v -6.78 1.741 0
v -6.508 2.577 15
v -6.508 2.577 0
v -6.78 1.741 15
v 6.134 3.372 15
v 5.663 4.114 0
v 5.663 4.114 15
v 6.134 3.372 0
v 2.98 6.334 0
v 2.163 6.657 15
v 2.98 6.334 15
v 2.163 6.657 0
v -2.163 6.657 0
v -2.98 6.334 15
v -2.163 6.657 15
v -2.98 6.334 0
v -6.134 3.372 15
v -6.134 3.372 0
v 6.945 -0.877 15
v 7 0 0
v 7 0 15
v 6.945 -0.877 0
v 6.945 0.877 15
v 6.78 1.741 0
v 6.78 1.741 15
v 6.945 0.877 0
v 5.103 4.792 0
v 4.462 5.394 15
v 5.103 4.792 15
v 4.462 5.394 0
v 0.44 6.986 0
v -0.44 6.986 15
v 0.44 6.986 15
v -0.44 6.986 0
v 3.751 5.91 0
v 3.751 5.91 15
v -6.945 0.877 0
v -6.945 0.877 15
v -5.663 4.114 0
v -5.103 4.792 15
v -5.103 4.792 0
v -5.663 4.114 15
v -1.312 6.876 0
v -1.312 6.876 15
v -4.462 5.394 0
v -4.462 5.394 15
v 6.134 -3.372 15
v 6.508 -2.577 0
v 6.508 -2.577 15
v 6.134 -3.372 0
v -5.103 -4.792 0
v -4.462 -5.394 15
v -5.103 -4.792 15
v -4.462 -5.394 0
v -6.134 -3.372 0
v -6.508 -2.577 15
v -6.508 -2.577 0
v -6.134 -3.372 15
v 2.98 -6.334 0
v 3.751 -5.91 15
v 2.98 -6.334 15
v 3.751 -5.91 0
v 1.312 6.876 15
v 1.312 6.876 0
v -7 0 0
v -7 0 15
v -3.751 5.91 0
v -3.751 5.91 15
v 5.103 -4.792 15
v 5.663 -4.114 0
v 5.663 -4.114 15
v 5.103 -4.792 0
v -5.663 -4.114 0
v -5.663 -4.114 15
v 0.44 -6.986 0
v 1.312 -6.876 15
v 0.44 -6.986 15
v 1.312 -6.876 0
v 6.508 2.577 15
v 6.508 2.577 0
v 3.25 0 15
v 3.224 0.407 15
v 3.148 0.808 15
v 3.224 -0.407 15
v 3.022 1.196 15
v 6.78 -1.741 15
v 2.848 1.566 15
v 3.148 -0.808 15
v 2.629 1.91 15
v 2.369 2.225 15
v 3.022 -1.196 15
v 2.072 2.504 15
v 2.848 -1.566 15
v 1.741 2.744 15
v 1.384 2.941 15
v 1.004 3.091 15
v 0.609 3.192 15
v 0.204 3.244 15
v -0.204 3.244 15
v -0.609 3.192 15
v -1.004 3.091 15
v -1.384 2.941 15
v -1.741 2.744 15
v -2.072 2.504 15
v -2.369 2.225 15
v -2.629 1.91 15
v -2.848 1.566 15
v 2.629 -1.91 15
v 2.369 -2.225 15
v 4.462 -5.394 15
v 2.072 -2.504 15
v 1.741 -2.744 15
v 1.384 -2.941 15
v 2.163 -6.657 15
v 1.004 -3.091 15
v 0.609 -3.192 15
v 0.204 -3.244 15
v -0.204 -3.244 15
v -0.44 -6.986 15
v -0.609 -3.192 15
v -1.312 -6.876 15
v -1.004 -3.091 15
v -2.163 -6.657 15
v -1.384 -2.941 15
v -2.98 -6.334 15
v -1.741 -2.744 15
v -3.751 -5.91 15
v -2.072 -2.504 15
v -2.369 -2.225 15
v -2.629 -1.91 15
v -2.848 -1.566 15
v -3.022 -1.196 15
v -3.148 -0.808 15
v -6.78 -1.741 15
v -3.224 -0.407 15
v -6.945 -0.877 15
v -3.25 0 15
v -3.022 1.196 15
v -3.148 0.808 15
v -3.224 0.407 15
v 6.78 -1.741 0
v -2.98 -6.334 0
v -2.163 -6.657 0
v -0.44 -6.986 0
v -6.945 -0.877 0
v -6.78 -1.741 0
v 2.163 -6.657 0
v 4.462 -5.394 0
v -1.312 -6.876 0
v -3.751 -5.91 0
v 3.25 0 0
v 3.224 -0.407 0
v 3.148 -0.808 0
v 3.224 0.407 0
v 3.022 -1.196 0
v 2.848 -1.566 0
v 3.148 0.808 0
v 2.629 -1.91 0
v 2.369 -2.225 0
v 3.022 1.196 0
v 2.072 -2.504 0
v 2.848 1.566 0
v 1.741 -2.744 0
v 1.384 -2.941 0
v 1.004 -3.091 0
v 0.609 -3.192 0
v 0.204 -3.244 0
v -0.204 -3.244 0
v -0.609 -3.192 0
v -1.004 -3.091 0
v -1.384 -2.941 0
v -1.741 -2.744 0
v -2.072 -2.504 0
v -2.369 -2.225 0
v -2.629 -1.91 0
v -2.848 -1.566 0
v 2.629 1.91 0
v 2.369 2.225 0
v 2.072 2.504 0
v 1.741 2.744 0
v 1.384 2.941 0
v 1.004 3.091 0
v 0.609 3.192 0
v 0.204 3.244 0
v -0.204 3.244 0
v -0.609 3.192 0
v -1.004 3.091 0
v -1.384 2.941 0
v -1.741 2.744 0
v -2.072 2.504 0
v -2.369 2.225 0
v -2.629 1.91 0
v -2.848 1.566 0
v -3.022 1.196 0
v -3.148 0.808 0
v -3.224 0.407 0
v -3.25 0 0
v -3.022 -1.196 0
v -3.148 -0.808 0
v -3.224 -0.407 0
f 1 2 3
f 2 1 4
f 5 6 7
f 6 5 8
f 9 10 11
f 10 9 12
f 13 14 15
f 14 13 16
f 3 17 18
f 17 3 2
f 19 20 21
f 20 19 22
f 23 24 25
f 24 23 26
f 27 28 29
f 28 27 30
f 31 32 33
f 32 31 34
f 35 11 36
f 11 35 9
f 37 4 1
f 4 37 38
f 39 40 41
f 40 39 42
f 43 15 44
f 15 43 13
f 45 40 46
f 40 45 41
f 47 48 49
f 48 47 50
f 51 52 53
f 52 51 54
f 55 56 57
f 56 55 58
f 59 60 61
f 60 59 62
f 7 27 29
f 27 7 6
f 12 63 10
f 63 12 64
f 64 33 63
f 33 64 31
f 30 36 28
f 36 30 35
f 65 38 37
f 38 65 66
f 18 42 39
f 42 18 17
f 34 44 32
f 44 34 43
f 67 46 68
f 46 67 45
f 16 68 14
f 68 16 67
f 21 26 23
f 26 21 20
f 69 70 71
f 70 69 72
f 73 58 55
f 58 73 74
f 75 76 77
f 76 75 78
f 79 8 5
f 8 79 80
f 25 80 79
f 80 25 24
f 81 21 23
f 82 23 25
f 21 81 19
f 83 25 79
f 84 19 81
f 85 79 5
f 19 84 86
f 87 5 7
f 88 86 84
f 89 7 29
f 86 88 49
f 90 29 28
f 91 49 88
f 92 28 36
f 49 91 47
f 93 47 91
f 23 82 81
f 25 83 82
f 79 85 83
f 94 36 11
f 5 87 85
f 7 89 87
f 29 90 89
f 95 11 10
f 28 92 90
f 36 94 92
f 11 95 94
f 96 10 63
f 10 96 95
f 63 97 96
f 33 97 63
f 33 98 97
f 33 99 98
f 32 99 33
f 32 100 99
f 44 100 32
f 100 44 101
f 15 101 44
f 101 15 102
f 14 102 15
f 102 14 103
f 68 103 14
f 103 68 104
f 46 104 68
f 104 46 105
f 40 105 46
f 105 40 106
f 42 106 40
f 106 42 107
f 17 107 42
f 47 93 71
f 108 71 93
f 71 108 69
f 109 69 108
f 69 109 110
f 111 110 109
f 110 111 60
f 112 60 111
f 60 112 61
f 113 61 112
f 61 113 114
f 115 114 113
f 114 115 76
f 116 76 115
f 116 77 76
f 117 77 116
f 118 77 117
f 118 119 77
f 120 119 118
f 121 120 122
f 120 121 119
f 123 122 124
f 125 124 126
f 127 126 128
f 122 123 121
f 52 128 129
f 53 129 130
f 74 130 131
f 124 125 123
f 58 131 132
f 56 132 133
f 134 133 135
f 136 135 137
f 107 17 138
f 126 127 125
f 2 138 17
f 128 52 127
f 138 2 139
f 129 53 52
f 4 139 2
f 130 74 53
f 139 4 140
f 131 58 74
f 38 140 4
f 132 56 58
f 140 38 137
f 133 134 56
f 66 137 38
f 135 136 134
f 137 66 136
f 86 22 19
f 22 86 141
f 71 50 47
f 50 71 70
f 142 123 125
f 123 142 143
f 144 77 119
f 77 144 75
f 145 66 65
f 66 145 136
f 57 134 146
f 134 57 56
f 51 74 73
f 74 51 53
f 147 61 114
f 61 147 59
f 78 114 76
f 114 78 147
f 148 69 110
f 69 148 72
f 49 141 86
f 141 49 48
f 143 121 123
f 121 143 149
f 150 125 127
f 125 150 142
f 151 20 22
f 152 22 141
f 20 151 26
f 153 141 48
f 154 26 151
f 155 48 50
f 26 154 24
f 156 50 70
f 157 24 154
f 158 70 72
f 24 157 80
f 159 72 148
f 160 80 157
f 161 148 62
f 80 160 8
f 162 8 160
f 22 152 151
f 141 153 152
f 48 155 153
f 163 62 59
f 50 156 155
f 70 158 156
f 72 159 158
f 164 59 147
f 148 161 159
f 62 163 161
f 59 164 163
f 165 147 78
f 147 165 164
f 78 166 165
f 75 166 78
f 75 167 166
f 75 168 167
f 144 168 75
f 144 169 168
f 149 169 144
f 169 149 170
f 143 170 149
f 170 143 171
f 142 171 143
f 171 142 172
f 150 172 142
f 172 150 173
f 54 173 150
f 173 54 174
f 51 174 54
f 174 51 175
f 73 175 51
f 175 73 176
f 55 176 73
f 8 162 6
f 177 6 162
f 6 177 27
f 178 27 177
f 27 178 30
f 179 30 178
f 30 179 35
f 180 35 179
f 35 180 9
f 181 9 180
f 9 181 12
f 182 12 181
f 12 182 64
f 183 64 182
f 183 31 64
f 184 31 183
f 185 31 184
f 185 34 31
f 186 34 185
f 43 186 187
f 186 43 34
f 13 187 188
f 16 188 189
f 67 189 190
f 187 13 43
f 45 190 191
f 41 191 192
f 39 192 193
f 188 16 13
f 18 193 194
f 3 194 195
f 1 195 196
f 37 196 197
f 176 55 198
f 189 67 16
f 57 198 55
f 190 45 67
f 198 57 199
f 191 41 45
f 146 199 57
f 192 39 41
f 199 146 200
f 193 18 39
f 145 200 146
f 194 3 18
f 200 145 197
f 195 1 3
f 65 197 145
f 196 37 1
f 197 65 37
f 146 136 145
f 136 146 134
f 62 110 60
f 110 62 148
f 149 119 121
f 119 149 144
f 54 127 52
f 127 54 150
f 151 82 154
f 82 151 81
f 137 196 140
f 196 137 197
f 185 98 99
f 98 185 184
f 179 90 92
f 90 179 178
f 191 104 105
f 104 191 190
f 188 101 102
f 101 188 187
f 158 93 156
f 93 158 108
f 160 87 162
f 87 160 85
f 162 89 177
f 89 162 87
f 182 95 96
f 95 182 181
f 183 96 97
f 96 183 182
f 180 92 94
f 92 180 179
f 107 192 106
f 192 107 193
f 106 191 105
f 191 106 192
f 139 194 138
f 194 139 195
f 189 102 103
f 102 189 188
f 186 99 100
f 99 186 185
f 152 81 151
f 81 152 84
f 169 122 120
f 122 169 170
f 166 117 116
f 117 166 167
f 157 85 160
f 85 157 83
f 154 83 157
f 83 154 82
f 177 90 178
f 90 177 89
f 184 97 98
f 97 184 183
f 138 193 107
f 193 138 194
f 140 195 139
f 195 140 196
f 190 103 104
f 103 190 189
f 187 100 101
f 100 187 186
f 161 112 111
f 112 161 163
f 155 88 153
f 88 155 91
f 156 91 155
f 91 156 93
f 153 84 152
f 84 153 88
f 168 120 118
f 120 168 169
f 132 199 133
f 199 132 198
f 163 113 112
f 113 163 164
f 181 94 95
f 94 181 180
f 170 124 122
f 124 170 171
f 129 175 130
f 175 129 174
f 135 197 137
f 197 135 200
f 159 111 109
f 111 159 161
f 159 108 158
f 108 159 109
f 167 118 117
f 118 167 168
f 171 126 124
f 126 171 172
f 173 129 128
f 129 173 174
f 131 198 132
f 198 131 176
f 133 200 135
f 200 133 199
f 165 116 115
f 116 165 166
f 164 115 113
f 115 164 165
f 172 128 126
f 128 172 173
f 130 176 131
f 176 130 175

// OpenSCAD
$fn = 50;


difference() {
	union() {
		cylinder(h = 15, r = 7.0000000000);
	}
	union() {
		translate(v = [0, 0, -100]) {
			cylinder(h = 200, r = 3.2500000000);
		}
	}
}
